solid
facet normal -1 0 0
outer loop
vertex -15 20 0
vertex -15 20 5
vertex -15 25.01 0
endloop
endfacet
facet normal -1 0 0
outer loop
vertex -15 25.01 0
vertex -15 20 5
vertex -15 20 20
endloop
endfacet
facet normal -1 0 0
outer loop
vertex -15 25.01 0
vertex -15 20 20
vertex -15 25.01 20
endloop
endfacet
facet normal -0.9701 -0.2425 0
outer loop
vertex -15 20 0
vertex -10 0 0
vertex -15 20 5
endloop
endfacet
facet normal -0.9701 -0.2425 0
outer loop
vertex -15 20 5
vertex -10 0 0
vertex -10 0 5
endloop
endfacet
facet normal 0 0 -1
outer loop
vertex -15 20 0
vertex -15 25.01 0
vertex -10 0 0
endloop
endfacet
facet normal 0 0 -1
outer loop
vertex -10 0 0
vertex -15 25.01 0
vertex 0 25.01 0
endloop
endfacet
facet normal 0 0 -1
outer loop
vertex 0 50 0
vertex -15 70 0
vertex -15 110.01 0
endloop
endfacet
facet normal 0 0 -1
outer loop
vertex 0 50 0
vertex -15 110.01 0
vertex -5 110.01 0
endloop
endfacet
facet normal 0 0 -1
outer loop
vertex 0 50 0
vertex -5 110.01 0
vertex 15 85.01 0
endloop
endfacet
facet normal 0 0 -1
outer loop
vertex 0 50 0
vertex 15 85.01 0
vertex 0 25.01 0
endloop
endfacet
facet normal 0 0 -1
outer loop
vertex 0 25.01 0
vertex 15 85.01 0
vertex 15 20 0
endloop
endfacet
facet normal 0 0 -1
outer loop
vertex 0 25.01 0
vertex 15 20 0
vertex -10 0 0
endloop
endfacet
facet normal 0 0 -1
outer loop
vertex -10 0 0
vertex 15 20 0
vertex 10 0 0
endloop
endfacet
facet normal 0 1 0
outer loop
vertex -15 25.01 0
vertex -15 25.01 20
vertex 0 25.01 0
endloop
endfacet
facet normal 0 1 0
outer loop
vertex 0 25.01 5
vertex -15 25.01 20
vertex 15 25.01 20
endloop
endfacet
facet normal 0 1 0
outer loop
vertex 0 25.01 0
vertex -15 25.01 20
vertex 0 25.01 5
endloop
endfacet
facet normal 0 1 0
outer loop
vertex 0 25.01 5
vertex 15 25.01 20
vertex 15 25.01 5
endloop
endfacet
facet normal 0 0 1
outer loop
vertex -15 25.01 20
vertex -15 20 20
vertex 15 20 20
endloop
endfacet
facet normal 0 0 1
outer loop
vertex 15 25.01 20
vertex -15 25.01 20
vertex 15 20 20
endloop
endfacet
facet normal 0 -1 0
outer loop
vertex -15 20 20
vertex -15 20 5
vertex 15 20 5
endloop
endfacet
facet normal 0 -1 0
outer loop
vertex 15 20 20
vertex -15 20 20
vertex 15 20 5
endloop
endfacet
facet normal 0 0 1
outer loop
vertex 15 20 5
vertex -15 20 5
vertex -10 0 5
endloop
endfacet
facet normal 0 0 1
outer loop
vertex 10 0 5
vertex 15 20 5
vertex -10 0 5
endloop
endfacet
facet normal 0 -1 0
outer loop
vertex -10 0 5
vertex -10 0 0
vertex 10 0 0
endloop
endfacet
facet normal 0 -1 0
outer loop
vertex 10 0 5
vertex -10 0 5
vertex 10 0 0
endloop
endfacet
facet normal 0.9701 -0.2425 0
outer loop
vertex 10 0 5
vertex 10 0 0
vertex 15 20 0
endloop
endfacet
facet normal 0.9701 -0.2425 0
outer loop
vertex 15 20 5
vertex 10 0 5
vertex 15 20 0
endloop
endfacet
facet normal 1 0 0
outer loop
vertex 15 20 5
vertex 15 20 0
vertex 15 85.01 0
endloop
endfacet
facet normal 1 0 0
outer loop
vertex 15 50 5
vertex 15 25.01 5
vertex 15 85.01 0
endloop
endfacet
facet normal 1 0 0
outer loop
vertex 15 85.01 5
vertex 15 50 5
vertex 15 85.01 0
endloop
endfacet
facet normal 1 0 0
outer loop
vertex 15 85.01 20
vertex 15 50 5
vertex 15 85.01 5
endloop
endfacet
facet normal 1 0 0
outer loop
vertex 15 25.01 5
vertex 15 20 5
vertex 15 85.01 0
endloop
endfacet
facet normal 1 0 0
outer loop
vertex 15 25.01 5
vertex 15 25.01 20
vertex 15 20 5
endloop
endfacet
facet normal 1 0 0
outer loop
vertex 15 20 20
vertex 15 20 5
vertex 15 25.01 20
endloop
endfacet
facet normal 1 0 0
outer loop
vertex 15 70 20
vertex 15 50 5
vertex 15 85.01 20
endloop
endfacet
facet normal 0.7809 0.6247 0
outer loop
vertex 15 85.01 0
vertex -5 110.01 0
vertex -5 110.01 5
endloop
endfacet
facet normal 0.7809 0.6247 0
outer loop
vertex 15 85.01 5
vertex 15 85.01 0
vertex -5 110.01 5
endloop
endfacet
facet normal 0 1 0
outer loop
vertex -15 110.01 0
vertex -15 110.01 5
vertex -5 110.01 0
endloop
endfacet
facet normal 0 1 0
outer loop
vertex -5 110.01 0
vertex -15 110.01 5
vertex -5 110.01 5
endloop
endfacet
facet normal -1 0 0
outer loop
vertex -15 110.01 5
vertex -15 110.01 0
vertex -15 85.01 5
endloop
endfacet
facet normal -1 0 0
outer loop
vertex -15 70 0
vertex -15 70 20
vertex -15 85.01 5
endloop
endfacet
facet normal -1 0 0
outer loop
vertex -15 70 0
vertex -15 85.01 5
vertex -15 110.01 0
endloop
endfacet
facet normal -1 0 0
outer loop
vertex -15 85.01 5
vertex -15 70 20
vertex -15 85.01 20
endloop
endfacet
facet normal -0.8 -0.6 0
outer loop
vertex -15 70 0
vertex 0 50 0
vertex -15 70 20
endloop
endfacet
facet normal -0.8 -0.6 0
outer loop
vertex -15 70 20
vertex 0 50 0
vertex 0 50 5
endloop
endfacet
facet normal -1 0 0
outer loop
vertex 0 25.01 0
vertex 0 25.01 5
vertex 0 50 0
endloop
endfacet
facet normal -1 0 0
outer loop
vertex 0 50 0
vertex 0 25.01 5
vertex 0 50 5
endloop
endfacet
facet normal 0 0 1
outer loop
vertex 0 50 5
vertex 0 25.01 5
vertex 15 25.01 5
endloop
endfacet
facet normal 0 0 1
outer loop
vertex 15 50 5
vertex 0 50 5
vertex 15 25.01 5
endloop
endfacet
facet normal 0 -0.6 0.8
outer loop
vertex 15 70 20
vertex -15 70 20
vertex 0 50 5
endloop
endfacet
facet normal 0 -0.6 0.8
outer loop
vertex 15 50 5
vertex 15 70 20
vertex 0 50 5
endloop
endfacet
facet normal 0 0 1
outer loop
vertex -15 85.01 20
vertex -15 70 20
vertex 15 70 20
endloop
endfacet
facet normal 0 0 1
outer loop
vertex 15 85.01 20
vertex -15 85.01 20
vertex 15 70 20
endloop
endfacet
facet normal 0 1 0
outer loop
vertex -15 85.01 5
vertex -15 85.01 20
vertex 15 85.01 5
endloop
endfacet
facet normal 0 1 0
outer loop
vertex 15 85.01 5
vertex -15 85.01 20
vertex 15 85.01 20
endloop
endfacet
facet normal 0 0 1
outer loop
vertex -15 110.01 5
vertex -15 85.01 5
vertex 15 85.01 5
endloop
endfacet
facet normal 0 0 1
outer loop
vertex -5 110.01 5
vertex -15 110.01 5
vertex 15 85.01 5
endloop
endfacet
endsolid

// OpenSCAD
// file: beams.scad
/* 
 * openscad beams library
 * create complex openscads objects from frames which are defining beams
 * (constructed like a ship body or airplane hull)
 *
 * https://github.com/Stemer114/openscad_beams
 * http://www.thingiverse.com/Stemer114/designs
 * 
 *    Copyright (C) 2016 Stemer114 (stemer114@merunka.de)
 *
 *    This program is free software: you can redistribute it and/or modify
 *    it under the terms of the GNU General Public License as published by
 *    the Free Software Foundation, either version 3 of the License, or
 *    (at your option) any later version.
 *
 *    This program is distributed in the hope that it will be useful,
 *    but WITHOUT ANY WARRANTY; without even the implied warranty of
 *    MERCHANTABILITY or FITNESS FOR A PARTICULAR PURPOSE.  See the
 *    GNU General Public License for more details.
 *
 *    You should have received a copy of the GNU General Public License
 *    along with this program.  If not, see <http://www.gnu.org/licenses/>.
 *

 * Credits: 
 *          for some of the examples
 *          MCAD Library - Polyholes Copyright 2011 Nophead (of RepRap fame)
 *          It is licensed under the terms of Creative Commons Attribution 3.0 Unported.
 *          https://github.com/SolidCode/MCAD/blob/master/polyholes.scad
 *
 *          BeamsVersion, libEcho and code structure inspired by 
 *          OpenSCAD Parts Library by randyy is licensed under the GNU - LGPL license. 
 *          http://www.thingiverse.com/thing:6021
 *
 */

//**** house keeping
//we define these as functions to avoid assignment problems from caller modules
function BeamsVersion() = 1.0;  //library version
function ep()=0.01;  //epsilon environment to avoid non-manifold objects


//**** module definitions

// a single rectangular frame, usually very thin
// params: w - width of frame (x direction)
//         h - height of frame (z direction)
//         d - thickness of frame (y direction, usually very thin, e.g. 0.1mm)
//         o - offset vector from origin (probably best to use x and y offsets only here for starters)
//         r - rotation vector (probably best to use only z rotation here for starters)
//         vec - vector interface, used instead of the named params
//         the vector must use the following structure (example)
//           w  h  rotation    offset        thickness
//          [3, 4, [0, 0, 90], [0, -1.5, 0], ep ],   //start (front center)
//         there is no checking other than length checking to branch in the interface
//         so better make sure the vector conforms
//         the vector interface allows you to define a list of vectors in your source file
//         and supply them all at once to the beam module (see below)
//         this probably makes more sense if you look at some of the example files
module frame(
        w = 10,  //width
        h = 10,  //height
        r = [0, 0, 0],  //rotation vector
        o = [0, 0, 0],   //offset vector
        d = ep(),  //thickness (normally very thin)
        vec = [],  //vector, default none
        )
{
    if ( len(vec)==5 ) {
        //use vector interface
        translate( vec[3] )
            rotate( vec[2] )
            cube([ vec[0], vec[4], vec[1] ]);
    } else {
        //use single param interface
        translate(o)
            rotate(r)
            cube([w, d, h]);
    }  //end else
}  //end module

// a single beam consisting of two frames at either end, connected by a hull
// to disable hull, use no_hull=true (for debugging)
// beam uses the vector interface (see above in module frame)
module beam(
        frame1 = [10, 10, [0, 0, 0], [0, 0, 0], ep() ],
        frame2 = [10, 10, [0, 0, 0], [0, 20, 0], ep() ],
        no_hull = false,   
        )
{
    if ( no_hull ) {
        frame(vec=frame1);
        frame(vec=frame2);
    } else {
        hull() {
            frame(vec=frame1);
            frame(vec=frame2);
        }  //end hull
    }  //end else
}  //end module

// a beam consisting of 2 or more frames connected by hulls
// uses the vector interface (see above)
// see example scad files in library source to get an idea how to use this
module beam_multi(frames=[], no_hull=false )
{
    if ( len(frames)<2 ) {
        echo("WARNING: beam_multi: number of frames too small (must be at least 2): ", len(frames) );
    } else {
        for ( frame = [0:len(frames)-2] ) {
            beam( frames[frame], frames[frame+1], no_hull=no_hull );
        } //end for

    }
}

/*************************************************
 * interface 
*/

libEcho=true;
if (libEcho!=false){ 
	echo("****************************************************************  ");
    echo(" beams scad library loaded.");
    echo(" Version: ", BeamsVersion() );
    echo(" usage: - include beams.scad in your project dir,");
    echo("        - then add include <beams.scad> to your script ");
	echo("        - to turn off this header, place libEcho=false; in your script");
    echo("        - see examples scad files to some inspiration")
	echo("****************************************************************  ");
}
// main file
/*
 * a collection of simple examples for beams library
 * example for using openscad beams library
 *
 */

ep = 0.01;  //epsilon environment

include <beams.scad>

//          w   h   rotation   offset    thickness
params = [ 
           [20, 5,  [0, 0, 0], [-10, 0, 0], ep ],
           [30, 5,  [0, 0, 0], [-15, 20, 0], ep ],
           [30, 20, [0, 0, 0], [-15, 20, 0], ep ],
           [30, 20, [0, 0, 0], [-15, 25, 0], ep ],
           [15, 5,  [0, 0, 0], [0, 25, 0], ep ],
           [15, 5,  [0, 0, 0], [0, 50, 0], ep ],
           [30, 20, [0, 0, 0], [-15, 70, 0], ep ],
           [30, 20, [0, 0, 0], [-15, 85, 0], ep ],
           [30, 5, [0, 0, 0], [-15, 85, 0], ep ],
           [10, 5, [0, 0, 0], [-15, 110, 0], ep ],
         ];

beam_multi(frames=params );
